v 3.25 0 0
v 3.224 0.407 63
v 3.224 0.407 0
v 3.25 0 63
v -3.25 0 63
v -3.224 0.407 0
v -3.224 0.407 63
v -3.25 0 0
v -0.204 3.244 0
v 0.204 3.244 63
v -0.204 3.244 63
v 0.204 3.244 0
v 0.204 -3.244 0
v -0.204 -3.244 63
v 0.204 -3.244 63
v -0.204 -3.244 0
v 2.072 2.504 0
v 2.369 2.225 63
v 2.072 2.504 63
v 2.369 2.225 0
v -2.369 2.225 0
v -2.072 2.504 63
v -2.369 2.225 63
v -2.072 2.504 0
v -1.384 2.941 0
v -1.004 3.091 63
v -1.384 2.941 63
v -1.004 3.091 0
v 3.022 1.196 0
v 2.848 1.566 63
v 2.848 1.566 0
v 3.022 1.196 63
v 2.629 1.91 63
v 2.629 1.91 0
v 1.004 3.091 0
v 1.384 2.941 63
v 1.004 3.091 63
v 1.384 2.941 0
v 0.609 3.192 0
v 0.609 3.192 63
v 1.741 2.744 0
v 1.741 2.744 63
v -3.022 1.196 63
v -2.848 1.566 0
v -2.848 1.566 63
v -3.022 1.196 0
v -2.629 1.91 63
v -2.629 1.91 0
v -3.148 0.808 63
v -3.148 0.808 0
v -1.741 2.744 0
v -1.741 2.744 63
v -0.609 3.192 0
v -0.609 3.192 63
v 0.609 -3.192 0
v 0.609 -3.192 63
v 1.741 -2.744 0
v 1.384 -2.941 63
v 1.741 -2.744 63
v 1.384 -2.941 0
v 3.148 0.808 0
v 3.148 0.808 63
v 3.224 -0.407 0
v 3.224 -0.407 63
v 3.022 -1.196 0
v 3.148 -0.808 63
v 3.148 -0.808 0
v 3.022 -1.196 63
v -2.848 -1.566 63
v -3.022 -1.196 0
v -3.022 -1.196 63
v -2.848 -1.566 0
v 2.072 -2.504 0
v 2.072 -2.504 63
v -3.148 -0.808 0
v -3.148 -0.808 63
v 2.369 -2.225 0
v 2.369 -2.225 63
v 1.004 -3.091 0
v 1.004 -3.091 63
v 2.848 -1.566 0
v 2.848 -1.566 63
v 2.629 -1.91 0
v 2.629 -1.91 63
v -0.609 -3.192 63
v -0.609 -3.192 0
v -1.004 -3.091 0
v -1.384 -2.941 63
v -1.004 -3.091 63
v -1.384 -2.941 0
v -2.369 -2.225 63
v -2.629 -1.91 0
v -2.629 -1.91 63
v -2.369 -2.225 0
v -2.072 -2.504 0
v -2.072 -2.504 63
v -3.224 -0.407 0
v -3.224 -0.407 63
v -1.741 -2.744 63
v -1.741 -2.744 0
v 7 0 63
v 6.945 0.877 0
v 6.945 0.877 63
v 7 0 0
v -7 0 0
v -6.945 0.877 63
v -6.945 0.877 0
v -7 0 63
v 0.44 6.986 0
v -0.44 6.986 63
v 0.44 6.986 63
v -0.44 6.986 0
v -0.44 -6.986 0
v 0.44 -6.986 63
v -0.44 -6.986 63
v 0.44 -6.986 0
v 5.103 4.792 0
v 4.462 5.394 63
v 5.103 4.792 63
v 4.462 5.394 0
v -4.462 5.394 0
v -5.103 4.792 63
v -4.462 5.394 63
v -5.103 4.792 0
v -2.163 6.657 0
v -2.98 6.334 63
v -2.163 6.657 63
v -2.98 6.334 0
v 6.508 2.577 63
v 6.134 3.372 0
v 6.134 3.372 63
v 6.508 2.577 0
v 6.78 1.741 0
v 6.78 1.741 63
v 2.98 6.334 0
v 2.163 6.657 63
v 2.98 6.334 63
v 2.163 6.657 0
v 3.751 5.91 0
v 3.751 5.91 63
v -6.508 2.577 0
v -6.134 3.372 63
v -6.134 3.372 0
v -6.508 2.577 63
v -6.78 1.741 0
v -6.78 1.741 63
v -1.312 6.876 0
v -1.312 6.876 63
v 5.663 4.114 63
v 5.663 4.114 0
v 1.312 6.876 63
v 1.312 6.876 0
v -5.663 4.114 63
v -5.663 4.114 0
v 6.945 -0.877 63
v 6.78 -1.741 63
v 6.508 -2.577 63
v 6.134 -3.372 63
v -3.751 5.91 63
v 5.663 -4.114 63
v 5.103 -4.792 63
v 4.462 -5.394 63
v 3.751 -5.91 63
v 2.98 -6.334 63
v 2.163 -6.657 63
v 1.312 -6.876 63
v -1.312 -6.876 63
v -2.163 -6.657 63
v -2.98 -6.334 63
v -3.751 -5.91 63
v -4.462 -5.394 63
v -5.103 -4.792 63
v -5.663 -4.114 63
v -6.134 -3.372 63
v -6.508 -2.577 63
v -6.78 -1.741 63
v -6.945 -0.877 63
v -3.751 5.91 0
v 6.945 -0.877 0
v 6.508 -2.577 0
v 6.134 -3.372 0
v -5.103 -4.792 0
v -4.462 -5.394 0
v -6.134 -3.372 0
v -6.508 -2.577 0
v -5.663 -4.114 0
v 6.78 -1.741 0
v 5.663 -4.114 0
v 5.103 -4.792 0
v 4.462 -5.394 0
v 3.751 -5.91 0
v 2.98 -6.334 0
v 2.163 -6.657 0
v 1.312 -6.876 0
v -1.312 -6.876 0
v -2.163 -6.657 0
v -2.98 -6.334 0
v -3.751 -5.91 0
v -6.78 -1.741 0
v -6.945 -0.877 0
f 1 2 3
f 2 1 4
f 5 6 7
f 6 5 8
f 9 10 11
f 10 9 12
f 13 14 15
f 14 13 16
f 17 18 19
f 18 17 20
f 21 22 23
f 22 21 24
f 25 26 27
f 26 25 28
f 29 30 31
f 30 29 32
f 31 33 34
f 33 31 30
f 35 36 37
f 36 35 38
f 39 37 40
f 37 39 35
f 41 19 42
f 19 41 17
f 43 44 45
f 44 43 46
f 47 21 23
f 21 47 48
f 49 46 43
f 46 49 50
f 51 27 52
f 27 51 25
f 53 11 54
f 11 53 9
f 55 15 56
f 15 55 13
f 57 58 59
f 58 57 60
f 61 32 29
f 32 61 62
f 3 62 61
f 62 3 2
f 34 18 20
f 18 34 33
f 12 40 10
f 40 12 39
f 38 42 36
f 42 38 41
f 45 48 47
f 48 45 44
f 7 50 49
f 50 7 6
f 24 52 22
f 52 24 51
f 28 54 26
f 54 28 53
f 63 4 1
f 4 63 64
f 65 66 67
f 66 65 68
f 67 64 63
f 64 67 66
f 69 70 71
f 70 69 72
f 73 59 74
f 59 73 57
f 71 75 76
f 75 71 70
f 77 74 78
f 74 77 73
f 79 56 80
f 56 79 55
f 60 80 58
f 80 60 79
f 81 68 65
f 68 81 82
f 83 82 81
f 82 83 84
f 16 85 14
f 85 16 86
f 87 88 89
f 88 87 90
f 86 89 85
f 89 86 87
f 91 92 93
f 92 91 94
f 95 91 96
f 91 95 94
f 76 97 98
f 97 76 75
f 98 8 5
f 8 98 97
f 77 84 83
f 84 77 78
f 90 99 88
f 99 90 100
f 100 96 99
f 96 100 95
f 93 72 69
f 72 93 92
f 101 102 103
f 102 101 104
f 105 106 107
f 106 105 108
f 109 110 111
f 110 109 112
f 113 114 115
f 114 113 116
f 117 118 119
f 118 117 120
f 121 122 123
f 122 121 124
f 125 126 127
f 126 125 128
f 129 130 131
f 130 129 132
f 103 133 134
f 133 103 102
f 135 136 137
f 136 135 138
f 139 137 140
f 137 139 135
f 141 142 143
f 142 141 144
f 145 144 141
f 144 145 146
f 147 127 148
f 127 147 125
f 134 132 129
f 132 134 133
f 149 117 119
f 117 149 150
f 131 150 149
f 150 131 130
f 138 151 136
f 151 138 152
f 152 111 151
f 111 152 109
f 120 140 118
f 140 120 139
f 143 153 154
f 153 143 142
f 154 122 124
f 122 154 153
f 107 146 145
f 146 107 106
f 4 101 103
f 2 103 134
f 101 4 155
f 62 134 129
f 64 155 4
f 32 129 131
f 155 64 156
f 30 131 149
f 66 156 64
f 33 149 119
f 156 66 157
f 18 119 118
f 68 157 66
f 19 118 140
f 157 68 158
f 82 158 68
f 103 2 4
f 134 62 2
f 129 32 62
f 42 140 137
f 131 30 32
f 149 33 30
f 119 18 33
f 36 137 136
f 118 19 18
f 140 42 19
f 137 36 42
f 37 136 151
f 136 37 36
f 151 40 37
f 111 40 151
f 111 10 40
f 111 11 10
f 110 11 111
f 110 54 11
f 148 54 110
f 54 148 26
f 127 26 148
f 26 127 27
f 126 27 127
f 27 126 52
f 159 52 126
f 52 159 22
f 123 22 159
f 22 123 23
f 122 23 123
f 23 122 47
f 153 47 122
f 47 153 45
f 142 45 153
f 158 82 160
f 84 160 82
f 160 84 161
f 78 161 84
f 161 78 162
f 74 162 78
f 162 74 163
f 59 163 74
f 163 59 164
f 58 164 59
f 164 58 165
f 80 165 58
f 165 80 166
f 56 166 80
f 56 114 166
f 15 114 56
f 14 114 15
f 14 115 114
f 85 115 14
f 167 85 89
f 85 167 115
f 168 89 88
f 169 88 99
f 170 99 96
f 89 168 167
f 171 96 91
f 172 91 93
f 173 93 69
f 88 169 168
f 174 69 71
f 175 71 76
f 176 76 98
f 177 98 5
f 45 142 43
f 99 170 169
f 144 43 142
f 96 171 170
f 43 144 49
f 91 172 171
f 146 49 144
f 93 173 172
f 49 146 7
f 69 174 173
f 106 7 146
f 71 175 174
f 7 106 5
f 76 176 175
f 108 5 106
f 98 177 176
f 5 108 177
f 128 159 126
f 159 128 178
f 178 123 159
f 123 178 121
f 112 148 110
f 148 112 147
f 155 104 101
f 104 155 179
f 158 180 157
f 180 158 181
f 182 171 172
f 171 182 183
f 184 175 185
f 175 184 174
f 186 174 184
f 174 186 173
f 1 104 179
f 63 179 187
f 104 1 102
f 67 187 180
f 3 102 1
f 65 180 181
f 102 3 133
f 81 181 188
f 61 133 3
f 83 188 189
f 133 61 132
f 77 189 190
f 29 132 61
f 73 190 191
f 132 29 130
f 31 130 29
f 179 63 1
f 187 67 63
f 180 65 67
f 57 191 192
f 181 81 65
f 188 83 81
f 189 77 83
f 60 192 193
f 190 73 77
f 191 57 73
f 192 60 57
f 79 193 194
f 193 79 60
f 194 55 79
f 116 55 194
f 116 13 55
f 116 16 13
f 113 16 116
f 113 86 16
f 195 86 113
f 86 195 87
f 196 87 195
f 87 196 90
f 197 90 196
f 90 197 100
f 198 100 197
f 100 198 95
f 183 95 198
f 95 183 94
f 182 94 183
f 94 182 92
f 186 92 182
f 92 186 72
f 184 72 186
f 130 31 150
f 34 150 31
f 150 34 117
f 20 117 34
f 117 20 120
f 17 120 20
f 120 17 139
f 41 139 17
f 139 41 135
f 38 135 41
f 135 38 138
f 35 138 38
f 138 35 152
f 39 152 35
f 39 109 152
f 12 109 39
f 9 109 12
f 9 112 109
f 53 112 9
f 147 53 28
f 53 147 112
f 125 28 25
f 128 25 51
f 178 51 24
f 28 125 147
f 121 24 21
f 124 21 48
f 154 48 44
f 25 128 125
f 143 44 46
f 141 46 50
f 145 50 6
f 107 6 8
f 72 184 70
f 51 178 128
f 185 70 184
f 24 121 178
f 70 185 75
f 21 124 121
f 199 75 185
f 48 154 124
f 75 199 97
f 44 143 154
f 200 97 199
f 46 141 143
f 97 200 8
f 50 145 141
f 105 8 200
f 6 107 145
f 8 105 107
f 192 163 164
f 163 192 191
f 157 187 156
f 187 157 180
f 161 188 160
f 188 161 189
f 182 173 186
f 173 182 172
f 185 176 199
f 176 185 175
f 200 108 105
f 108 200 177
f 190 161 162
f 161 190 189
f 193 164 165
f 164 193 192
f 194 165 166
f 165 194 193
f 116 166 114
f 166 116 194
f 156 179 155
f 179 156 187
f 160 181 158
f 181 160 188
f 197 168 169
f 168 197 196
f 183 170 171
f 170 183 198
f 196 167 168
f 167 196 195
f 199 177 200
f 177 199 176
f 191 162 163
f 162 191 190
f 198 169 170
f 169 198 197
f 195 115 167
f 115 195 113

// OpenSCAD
$fn = 50;


difference() {
	union() {
		cylinder(h = 63, r = 7.0000000000);
	}
	union() {
		translate(v = [0.0000000000, 0.0000000000, -100.0000000000]) {
			cylinder(h = 200, r = 3.2500000000);
		}
		translate(v = [0.0000000000, 0.0000000000, -100.0000000000]) {
			cylinder(h = 200, r = 3.2500000000);
		}
		translate(v = [0.0000000000, 0.0000000000, -100.0000000000]) {
			cylinder(h = 200, r = 3.2500000000);
		}
		translate(v = [0.0000000000, 0.0000000000, -100.0000000000]) {
			cylinder(h = 200, r = 3.2500000000);
		}
	}
}
